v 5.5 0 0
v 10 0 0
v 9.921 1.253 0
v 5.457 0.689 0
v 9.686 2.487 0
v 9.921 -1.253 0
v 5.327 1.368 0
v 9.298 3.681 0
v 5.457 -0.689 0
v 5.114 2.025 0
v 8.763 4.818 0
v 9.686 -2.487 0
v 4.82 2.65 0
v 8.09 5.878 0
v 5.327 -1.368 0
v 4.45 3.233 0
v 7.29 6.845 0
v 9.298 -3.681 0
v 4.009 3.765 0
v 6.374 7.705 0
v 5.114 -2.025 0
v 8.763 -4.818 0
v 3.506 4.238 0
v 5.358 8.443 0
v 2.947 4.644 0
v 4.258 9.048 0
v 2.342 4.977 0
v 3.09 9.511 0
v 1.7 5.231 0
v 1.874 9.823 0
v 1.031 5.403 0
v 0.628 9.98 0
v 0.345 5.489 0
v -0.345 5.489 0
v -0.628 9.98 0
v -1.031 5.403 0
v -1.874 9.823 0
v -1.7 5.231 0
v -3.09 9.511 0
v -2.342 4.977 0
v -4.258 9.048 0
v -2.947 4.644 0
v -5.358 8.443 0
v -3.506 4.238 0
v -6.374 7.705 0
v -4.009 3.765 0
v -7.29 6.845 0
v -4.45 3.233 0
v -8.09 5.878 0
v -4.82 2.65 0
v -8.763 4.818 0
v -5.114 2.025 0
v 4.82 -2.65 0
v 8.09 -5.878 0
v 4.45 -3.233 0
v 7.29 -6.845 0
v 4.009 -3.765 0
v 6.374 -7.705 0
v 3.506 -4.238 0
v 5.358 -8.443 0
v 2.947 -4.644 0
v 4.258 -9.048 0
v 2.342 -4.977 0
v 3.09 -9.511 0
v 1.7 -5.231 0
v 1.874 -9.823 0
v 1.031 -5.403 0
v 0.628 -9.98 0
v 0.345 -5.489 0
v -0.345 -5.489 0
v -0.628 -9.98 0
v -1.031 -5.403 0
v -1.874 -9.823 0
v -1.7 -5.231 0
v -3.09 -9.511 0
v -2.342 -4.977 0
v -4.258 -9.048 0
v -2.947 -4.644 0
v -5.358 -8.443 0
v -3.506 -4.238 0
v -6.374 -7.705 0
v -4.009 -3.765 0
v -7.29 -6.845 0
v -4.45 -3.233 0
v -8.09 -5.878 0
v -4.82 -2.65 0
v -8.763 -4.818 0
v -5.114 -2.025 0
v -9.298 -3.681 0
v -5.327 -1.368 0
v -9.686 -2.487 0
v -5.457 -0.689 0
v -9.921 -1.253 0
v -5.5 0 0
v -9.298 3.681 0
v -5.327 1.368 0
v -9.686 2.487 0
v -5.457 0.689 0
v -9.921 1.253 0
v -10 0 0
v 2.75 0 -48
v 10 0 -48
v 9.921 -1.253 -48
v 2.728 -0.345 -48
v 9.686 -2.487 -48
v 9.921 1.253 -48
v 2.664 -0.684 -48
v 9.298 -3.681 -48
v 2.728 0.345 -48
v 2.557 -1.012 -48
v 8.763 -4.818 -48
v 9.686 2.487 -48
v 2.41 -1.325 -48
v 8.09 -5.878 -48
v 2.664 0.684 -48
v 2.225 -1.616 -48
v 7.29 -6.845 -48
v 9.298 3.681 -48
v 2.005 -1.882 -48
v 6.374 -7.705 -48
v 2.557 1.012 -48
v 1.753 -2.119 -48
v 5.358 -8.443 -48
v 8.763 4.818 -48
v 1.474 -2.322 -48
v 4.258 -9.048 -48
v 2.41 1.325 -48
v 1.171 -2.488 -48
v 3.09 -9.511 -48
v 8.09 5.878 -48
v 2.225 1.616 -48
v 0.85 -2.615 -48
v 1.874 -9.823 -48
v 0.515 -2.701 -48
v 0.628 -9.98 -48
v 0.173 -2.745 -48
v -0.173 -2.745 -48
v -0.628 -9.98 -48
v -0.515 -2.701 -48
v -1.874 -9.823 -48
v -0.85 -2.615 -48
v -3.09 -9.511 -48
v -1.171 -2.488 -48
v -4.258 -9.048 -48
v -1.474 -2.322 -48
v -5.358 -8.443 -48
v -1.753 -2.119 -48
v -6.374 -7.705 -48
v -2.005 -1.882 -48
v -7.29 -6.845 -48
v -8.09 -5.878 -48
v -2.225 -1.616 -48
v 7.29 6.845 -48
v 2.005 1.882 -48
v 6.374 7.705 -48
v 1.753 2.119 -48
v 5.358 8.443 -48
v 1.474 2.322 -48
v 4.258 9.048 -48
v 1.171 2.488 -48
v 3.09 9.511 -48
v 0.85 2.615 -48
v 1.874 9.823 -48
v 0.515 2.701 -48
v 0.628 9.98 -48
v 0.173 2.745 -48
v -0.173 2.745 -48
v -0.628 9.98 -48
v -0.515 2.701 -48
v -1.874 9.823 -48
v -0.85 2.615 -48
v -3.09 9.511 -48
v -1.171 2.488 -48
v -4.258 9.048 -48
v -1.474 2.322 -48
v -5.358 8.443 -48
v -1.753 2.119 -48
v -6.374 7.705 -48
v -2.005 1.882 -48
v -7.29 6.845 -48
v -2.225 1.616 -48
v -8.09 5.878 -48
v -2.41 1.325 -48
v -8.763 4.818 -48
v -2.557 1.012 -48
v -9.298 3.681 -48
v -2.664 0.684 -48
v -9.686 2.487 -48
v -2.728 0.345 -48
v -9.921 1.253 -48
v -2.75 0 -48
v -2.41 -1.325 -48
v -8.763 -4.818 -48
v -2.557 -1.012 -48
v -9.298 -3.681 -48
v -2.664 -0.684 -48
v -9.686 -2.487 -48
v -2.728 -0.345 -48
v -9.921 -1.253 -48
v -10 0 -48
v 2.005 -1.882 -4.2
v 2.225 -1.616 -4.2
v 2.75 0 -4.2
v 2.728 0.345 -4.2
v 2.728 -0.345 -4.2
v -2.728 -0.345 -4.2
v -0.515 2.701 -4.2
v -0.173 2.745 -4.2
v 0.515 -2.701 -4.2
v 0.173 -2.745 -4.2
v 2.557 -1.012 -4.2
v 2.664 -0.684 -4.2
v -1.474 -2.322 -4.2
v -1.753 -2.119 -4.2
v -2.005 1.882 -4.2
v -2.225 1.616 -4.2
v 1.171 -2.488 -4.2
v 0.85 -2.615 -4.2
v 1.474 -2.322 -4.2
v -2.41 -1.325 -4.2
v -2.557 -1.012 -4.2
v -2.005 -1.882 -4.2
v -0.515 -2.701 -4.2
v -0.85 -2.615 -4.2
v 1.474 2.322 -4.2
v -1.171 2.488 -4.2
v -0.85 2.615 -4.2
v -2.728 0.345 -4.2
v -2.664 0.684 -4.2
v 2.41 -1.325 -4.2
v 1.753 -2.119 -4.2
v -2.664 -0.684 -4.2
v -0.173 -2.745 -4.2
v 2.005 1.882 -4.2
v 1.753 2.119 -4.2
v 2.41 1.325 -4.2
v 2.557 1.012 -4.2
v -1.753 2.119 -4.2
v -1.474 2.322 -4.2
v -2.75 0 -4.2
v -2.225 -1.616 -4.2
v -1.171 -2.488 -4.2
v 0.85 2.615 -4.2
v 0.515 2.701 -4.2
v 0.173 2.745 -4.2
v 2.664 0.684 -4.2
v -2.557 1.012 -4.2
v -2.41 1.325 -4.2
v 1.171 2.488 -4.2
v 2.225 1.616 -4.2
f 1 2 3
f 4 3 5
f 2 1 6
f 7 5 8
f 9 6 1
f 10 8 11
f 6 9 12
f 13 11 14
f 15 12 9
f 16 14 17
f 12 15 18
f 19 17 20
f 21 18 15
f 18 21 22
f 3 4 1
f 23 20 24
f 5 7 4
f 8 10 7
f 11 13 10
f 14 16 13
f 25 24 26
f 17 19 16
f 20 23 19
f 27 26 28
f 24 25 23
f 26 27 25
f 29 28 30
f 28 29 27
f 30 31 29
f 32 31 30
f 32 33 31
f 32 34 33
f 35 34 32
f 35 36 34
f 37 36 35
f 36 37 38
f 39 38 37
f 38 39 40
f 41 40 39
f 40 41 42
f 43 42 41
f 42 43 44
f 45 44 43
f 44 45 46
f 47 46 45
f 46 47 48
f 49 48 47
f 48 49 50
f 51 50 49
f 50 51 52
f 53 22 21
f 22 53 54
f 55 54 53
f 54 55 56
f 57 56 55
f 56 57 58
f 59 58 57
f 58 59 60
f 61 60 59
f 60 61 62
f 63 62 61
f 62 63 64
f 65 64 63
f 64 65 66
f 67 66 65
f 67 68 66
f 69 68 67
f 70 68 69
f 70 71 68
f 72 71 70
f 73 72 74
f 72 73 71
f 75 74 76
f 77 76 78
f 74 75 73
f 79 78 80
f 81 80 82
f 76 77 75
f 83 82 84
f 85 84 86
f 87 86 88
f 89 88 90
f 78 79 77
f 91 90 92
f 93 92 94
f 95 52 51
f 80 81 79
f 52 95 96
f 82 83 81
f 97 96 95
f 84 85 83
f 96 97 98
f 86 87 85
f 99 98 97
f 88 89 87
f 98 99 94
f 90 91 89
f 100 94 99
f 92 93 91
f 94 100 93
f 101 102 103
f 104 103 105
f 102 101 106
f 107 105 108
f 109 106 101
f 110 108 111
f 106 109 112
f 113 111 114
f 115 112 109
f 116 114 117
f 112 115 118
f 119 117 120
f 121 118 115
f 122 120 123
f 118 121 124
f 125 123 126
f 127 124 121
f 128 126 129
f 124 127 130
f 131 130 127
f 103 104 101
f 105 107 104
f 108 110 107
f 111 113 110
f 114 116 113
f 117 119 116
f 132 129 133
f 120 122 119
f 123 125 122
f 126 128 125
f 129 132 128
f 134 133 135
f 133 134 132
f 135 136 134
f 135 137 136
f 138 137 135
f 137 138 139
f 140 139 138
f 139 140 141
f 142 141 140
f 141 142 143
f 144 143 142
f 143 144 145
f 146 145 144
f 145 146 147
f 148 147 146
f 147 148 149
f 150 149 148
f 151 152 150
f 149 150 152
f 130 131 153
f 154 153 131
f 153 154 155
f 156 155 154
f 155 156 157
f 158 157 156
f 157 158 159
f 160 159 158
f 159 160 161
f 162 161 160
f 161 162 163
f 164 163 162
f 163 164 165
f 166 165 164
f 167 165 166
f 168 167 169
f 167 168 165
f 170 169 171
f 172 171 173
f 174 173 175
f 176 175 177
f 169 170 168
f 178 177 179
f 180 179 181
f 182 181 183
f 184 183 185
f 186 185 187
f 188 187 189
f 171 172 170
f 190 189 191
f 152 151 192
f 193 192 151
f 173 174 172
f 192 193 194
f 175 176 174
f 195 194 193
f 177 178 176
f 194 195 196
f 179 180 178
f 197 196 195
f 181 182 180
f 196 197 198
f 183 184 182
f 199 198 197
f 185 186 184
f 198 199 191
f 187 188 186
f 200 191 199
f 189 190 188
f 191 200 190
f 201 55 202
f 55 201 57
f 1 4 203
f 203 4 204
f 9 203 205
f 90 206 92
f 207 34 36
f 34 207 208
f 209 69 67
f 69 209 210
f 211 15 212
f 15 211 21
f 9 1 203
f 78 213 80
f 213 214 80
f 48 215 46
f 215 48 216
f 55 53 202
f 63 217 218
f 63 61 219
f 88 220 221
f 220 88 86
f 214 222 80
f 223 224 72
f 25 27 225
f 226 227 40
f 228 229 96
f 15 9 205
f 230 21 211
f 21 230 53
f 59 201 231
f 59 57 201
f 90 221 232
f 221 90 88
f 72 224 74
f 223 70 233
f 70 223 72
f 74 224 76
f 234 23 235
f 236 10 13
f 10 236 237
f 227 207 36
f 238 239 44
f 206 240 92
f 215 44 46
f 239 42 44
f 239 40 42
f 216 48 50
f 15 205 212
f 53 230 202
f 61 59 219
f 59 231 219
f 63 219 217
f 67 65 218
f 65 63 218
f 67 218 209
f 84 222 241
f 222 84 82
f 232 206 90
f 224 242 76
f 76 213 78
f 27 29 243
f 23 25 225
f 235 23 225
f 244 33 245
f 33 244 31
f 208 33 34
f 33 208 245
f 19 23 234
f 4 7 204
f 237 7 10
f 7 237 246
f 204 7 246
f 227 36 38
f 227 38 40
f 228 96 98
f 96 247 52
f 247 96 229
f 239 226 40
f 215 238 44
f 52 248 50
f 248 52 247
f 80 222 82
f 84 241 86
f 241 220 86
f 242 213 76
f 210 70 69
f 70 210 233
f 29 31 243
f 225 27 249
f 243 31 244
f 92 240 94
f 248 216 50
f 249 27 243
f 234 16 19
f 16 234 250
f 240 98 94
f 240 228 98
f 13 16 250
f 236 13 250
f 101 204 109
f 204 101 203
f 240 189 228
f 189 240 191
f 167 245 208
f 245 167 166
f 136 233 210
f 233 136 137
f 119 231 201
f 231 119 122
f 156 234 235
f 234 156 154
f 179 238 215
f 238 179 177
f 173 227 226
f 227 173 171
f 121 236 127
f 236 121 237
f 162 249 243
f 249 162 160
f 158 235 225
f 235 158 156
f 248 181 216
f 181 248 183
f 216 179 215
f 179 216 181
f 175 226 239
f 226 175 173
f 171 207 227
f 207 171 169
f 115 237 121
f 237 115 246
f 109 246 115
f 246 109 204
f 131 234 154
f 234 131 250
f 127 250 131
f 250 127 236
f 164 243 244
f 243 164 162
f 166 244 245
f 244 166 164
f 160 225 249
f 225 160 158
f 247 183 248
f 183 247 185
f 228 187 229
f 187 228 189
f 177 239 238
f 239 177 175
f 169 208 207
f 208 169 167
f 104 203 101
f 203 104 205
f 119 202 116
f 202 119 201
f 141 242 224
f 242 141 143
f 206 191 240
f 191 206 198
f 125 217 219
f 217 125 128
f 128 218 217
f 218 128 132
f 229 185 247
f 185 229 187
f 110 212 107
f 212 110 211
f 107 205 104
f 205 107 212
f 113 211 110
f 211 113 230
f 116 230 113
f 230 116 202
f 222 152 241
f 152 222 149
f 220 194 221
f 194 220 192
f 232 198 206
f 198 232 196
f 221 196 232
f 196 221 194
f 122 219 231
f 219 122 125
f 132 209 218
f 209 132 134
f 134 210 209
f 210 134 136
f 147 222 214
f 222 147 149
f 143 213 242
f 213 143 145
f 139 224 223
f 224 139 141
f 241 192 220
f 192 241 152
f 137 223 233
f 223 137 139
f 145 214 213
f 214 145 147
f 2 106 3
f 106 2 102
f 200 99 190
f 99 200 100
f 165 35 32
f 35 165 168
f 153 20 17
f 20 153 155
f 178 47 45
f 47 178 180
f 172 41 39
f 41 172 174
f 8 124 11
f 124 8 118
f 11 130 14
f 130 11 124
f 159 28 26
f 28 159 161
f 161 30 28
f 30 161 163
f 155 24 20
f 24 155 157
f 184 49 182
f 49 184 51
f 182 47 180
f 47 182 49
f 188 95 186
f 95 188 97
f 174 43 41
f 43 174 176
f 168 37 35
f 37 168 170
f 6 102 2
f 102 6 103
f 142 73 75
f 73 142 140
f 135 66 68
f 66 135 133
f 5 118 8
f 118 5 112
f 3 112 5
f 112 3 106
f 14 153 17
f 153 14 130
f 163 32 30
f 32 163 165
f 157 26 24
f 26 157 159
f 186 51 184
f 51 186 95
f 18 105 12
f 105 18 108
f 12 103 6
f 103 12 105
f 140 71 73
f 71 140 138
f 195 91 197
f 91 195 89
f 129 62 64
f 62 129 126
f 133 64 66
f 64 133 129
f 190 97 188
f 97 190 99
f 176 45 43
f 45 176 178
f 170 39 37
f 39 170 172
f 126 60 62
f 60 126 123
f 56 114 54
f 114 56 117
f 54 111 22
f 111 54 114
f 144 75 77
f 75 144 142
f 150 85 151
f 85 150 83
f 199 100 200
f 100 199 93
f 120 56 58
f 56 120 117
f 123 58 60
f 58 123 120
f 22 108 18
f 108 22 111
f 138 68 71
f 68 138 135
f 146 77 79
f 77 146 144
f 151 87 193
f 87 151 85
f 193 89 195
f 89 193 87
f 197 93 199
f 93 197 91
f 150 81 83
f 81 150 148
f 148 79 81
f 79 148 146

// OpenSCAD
$fn = 50;


difference() {
	union() {
		translate(v = [0, 0, -48.0000000000]) {
			cylinder(h = 48, r = 10.0000000000);
		}
		cylinder(h = 0, r = 13.0000000000);
	}
	union() {
		translate(v = [0, 0, 0]) {
			rotate(a = [0, 0, 0]) {
				difference() {
					union() {
						#translate(v = [0, 0, -48.0000000000]) {
							cylinder(h = 48, r = 2.2500000000);
						}
						#translate(v = [0, 0, -4.2000000000]) {
							cylinder(h = 4.2000000000, r1 = 2.7500000000, r2 = 5.5000000000);
						}
						#translate(v = [0, 0, -48.0000000000]) {
							cylinder(h = 48, r = 2.7500000000);
						}
						#translate(v = [0, 0, -48.0000000000]) {
							cylinder(h = 48, r = 2.2500000000);
						}
					}
					union();
				}
			}
		}
	}
}
